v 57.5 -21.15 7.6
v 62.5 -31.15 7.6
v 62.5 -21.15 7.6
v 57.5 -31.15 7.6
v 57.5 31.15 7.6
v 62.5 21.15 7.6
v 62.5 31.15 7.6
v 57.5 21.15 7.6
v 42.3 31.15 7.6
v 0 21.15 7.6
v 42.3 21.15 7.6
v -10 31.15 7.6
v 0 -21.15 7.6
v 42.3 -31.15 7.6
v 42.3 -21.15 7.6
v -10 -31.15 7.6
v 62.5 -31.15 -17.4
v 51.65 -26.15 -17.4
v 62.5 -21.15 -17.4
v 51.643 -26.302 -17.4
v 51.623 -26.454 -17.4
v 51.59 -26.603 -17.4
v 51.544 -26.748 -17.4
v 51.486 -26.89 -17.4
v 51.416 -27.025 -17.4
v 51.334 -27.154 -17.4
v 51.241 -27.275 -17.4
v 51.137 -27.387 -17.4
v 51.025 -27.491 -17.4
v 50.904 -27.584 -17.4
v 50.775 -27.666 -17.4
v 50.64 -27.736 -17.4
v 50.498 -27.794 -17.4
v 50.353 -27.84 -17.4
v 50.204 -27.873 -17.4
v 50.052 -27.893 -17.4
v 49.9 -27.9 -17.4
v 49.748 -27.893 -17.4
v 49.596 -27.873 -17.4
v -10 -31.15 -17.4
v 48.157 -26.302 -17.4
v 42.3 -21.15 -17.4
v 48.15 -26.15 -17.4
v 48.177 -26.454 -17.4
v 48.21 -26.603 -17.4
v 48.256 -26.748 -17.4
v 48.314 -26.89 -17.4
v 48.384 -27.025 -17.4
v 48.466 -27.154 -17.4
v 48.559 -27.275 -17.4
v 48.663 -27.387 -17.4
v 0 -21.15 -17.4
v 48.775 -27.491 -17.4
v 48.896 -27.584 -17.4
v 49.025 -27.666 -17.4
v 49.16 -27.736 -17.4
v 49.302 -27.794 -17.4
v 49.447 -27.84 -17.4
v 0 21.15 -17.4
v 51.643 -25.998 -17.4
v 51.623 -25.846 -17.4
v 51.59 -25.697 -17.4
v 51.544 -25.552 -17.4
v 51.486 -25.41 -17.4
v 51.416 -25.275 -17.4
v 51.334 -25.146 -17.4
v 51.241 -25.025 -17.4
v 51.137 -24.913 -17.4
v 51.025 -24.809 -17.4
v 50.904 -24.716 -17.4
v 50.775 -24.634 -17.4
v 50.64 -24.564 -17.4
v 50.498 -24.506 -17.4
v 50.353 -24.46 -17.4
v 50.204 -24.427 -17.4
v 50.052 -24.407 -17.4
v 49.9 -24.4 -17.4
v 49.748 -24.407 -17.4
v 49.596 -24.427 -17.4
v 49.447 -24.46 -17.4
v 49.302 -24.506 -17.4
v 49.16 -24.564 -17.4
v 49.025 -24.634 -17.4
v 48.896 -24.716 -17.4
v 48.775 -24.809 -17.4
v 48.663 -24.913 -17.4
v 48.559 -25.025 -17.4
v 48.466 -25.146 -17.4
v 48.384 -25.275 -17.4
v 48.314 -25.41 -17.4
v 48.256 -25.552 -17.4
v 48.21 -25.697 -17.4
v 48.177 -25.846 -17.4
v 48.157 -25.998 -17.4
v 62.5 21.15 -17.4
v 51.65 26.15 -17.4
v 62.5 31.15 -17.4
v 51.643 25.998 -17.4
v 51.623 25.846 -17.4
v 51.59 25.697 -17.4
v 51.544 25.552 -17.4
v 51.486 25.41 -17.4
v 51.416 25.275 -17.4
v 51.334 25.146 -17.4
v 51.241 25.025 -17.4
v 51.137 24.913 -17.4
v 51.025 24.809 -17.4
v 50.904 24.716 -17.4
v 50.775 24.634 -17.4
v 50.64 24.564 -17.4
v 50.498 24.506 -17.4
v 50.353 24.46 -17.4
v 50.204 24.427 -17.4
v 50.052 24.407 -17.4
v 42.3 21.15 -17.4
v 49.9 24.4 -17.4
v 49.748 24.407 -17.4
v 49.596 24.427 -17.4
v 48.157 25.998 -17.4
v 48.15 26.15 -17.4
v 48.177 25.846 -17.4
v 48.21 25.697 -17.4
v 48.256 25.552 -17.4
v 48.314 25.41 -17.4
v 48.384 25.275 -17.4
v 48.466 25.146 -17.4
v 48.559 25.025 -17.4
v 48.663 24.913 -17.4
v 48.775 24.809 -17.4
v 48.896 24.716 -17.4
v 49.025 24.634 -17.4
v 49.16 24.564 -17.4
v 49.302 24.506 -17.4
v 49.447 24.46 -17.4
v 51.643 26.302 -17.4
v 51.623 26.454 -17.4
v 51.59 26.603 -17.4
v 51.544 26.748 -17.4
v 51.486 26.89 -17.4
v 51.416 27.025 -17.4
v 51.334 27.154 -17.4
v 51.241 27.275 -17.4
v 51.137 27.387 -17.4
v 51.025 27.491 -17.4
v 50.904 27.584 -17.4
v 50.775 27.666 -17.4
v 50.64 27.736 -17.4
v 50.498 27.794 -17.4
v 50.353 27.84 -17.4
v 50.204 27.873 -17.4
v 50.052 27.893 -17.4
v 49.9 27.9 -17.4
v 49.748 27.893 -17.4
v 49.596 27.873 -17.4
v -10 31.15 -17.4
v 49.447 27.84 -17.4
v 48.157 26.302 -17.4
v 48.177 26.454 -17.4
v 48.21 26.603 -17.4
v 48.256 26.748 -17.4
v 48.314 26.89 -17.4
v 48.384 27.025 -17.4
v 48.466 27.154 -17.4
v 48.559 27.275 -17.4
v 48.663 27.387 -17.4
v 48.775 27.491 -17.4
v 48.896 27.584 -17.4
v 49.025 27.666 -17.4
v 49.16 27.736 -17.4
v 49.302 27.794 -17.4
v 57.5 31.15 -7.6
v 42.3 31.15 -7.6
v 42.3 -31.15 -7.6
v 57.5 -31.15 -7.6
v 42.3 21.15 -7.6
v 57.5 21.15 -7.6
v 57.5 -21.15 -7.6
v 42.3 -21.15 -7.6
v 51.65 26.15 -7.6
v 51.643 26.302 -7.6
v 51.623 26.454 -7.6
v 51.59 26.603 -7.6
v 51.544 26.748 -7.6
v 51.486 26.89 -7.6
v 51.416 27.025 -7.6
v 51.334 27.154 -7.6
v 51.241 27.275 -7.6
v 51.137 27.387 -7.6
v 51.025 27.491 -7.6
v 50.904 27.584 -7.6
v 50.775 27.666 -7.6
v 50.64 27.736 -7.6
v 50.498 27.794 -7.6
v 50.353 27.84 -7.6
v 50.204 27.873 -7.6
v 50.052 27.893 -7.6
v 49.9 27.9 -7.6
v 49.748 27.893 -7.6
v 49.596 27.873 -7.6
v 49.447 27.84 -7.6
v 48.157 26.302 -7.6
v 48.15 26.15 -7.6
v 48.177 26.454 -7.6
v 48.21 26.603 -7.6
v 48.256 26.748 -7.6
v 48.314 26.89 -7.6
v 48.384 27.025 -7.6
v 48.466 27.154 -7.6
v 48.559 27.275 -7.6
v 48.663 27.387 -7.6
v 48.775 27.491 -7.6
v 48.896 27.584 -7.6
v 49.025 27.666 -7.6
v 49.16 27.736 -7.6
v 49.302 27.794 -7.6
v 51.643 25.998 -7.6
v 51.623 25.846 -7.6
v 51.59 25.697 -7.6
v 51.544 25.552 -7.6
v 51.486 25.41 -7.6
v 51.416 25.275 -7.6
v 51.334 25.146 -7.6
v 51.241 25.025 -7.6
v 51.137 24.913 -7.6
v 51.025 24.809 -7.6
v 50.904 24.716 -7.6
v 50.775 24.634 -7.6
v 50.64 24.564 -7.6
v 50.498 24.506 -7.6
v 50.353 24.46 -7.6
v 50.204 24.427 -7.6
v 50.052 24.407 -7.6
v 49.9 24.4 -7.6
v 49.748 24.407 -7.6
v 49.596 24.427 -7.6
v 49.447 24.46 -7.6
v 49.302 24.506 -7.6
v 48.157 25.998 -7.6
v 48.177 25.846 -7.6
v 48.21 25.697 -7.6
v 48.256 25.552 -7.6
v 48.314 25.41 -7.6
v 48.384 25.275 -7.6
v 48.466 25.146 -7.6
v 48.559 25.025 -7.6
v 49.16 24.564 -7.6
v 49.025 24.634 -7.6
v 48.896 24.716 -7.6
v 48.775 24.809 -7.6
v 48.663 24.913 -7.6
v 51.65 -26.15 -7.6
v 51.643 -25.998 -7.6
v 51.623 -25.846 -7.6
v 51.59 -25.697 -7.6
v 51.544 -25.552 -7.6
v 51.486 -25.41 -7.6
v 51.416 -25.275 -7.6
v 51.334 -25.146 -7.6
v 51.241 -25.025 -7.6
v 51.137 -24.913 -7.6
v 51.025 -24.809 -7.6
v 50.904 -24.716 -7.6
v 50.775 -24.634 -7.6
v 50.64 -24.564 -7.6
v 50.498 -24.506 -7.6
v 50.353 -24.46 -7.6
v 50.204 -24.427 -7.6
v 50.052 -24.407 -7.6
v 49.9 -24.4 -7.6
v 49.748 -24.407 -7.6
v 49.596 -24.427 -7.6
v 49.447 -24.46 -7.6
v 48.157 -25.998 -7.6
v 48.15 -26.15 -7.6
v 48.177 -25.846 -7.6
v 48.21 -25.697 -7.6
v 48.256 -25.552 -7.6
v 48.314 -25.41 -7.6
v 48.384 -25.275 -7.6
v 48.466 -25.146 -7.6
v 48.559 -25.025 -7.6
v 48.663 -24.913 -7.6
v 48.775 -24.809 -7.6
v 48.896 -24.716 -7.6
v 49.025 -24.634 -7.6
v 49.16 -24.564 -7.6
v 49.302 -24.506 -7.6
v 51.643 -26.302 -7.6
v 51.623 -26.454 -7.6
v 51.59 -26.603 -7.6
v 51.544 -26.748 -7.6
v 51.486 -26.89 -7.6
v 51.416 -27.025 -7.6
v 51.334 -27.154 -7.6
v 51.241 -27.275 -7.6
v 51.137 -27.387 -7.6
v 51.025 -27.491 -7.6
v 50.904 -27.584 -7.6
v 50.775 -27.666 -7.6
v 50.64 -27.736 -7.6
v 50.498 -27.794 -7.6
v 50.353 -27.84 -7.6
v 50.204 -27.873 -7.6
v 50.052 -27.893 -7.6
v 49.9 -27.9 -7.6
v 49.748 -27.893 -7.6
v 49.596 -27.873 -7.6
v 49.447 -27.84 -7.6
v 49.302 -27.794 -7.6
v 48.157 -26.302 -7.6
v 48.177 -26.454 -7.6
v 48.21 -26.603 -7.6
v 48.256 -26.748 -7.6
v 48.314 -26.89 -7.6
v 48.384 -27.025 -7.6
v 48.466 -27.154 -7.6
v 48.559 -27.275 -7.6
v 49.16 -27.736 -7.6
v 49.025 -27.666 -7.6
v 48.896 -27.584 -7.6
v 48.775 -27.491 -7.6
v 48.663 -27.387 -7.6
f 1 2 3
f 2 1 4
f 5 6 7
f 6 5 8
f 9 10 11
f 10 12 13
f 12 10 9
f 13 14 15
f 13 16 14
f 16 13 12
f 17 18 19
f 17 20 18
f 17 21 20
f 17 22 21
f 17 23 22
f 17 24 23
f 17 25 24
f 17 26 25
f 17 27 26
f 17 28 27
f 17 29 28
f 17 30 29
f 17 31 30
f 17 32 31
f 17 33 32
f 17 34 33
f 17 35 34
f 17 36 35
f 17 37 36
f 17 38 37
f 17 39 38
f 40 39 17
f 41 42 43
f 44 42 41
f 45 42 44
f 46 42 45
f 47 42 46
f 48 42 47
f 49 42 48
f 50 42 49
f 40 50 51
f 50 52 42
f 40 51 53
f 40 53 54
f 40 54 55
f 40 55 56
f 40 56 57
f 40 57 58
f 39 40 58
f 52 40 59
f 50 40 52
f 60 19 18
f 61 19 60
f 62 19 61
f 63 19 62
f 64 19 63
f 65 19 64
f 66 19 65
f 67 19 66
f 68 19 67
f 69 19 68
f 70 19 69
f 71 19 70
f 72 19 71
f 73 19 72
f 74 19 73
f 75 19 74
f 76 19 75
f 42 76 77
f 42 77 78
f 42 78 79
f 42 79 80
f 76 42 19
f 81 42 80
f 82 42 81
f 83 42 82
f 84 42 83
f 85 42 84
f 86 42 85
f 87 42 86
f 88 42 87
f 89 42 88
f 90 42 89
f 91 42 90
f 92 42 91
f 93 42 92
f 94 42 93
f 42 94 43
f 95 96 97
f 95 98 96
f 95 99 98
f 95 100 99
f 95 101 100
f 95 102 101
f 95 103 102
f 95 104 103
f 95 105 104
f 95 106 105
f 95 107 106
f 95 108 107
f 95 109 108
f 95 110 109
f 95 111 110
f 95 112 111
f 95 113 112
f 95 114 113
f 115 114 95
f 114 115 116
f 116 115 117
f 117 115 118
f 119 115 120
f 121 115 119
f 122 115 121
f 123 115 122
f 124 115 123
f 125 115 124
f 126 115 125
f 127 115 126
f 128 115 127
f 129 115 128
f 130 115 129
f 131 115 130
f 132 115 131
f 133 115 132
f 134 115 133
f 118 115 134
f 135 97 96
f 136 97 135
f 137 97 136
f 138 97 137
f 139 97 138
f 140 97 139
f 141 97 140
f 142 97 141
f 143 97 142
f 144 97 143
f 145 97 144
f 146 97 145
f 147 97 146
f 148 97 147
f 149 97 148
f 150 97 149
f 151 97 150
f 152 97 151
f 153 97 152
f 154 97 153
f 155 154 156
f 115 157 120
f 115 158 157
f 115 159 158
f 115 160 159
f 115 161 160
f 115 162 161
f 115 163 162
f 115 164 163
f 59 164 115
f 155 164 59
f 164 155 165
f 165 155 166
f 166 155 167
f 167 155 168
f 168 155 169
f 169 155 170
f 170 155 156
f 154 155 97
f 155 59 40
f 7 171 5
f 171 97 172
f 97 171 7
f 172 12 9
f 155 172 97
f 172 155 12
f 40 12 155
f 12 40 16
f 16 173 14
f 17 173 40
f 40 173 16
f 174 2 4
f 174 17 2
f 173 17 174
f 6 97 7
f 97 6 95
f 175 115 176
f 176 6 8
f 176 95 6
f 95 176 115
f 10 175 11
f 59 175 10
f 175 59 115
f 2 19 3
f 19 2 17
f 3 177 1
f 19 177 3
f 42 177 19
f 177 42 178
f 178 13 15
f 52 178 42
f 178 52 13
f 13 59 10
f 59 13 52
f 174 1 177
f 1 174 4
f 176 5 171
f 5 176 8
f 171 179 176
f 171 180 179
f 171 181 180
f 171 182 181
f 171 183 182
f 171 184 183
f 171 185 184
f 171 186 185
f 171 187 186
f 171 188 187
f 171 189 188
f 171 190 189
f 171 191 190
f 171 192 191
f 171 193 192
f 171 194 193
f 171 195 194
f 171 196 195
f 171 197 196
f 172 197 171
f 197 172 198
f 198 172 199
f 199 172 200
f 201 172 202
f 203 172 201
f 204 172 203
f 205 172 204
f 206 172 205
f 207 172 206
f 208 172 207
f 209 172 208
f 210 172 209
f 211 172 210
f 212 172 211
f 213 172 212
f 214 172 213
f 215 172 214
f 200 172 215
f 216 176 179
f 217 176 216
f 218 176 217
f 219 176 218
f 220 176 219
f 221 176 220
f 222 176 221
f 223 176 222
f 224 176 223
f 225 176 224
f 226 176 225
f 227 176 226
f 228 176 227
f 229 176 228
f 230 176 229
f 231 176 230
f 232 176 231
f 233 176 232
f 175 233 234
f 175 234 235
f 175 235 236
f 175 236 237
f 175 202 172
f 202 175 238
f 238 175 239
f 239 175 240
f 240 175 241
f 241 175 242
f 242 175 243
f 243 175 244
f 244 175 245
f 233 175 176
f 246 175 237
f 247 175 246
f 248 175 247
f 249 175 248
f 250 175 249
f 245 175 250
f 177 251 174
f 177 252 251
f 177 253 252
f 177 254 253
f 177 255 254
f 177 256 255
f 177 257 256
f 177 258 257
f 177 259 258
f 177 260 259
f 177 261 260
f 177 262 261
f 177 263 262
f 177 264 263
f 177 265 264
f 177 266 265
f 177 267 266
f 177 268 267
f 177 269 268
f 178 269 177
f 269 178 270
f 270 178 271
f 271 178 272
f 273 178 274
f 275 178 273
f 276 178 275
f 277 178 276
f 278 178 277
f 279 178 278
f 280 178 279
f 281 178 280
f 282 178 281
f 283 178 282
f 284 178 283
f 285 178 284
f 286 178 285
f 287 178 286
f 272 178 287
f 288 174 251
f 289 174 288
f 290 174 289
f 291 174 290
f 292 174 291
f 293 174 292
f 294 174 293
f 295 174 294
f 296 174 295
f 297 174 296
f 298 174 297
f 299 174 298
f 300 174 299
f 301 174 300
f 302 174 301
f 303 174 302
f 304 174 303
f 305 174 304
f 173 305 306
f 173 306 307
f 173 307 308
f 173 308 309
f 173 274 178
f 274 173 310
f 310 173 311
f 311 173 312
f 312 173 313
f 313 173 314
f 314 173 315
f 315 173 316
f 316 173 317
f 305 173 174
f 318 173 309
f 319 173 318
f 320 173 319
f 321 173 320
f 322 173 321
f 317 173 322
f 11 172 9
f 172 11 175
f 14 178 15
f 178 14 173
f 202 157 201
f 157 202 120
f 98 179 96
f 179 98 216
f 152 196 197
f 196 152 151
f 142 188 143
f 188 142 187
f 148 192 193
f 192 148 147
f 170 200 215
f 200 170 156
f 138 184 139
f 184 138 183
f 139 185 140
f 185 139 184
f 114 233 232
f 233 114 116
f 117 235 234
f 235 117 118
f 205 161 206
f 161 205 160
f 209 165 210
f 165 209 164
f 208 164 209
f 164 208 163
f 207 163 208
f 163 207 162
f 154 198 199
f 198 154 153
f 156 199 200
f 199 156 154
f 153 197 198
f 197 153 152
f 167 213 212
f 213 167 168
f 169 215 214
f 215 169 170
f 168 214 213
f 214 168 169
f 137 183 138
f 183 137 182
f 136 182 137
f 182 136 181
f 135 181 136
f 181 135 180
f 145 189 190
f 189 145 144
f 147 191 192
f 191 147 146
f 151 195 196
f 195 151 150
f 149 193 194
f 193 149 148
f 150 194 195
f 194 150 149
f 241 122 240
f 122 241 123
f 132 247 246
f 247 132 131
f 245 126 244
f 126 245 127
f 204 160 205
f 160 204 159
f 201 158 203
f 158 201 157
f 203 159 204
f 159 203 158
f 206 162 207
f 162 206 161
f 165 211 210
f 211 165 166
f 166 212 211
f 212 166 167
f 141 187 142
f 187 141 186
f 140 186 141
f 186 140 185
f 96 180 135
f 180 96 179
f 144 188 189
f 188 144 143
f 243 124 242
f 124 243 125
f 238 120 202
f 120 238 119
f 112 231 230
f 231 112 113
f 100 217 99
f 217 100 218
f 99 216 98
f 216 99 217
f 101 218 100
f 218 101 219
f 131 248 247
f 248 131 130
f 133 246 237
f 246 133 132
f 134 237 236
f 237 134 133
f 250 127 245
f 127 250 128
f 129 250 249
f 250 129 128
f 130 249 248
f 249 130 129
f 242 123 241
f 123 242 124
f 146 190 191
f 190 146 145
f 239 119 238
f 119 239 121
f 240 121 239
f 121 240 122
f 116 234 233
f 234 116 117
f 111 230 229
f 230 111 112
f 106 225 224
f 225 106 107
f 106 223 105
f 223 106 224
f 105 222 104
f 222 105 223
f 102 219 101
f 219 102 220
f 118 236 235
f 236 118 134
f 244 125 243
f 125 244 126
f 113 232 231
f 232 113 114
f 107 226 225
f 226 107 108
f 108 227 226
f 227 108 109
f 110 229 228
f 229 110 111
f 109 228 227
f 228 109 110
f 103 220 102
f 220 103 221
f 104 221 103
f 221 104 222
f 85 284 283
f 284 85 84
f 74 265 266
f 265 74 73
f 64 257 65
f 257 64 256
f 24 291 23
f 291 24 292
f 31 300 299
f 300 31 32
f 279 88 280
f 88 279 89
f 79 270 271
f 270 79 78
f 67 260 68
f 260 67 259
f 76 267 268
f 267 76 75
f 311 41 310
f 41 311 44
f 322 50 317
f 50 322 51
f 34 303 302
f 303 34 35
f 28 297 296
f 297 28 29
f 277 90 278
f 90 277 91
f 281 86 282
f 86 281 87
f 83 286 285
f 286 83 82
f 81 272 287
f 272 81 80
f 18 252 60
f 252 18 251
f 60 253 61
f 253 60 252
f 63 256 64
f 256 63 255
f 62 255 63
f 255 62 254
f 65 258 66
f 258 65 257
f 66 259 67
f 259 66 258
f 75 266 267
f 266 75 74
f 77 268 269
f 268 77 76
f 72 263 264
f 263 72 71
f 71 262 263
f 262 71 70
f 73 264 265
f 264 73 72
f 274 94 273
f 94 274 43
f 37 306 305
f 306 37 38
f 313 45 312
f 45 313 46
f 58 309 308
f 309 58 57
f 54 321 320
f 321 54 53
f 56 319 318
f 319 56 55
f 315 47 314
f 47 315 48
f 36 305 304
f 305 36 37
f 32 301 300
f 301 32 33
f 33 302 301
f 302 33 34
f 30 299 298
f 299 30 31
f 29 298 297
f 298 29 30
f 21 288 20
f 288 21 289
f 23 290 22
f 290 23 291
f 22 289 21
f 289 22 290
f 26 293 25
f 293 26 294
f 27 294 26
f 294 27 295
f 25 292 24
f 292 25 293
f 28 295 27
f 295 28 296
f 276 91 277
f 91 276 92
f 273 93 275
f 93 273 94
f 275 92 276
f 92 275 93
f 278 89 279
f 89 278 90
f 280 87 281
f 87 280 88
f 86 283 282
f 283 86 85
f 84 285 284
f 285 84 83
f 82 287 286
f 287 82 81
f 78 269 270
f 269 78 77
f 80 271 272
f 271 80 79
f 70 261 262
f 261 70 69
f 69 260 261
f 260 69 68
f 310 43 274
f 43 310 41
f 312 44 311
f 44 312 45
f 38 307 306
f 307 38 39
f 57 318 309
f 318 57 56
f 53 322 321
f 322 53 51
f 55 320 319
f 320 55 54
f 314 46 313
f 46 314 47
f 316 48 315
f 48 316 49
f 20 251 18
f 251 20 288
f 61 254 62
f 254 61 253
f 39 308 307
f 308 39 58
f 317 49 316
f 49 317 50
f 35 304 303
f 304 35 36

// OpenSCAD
$fa=5; $fs=0.1;

module motor(){
	mwidth=42.3;
	mheight=40;
	difference(){
		union(){
			cube([mwidth, mwidth, mheight], center=true);
			translate([0, 0, mheight/2+1]) cylinder(h=2, r=11, center=true);
			translate([0, 0, mheight/2+12]) cylinder(h=24, r=2.5, center=true);
		}
		union(){
//			translate([-15.5, -15.5, mheight/2 - 2.25]) cylinder(h=4.51, r=1.5, center=true);
//			translate([-15.5, 15.5, mheight/2 - 2.25]) cylinder(h=4.51, r=1.5, center=true);
//			translate([15.5, -15.5, mheight/2 - 2.25]) cylinder(h=4.51, r=1.5, center=true);
//			translate([15.5, 15.5, mheight/2 - 2.25]) cylinder(h=4.51, r=1.5, center=true);
		}
	}//difference
}//module

mw=42.3;
prof=15.2;

rotate([0,90,0])
difference(){
	
	union(){
		translate([12.5-prof/2, 0, mw/2-5]) cube ([25, mw+20, mw+10], center=true);
		translate([12.5-prof/2, mw/2+5, mw+prof/2]) cube([25, 10, prof+10], center=true);
		translate([12.5-prof/2, -mw/2-5, mw+prof/2]) cube([25, 10, prof+10], center=true);
 	}
	
	union(){
		translate([0, 0, mw/2]) rotate([0,90,0]) color([0.6, 0, 0]) motor();
		translate([0, 0, mw+prof/2]) color([0,0.6,0]) cube([prof, 200, prof], center=true);

		translate([0, mw/2+5, mw+prof/2]) rotate([0, 90, 0]) cylinder(h=50, r=1.75, center=true);
		translate([0, -mw/2-5, mw+prof/2]) rotate([0, 90, 0]) cylinder(h=50, r=1.75, center=true);

	}
}
